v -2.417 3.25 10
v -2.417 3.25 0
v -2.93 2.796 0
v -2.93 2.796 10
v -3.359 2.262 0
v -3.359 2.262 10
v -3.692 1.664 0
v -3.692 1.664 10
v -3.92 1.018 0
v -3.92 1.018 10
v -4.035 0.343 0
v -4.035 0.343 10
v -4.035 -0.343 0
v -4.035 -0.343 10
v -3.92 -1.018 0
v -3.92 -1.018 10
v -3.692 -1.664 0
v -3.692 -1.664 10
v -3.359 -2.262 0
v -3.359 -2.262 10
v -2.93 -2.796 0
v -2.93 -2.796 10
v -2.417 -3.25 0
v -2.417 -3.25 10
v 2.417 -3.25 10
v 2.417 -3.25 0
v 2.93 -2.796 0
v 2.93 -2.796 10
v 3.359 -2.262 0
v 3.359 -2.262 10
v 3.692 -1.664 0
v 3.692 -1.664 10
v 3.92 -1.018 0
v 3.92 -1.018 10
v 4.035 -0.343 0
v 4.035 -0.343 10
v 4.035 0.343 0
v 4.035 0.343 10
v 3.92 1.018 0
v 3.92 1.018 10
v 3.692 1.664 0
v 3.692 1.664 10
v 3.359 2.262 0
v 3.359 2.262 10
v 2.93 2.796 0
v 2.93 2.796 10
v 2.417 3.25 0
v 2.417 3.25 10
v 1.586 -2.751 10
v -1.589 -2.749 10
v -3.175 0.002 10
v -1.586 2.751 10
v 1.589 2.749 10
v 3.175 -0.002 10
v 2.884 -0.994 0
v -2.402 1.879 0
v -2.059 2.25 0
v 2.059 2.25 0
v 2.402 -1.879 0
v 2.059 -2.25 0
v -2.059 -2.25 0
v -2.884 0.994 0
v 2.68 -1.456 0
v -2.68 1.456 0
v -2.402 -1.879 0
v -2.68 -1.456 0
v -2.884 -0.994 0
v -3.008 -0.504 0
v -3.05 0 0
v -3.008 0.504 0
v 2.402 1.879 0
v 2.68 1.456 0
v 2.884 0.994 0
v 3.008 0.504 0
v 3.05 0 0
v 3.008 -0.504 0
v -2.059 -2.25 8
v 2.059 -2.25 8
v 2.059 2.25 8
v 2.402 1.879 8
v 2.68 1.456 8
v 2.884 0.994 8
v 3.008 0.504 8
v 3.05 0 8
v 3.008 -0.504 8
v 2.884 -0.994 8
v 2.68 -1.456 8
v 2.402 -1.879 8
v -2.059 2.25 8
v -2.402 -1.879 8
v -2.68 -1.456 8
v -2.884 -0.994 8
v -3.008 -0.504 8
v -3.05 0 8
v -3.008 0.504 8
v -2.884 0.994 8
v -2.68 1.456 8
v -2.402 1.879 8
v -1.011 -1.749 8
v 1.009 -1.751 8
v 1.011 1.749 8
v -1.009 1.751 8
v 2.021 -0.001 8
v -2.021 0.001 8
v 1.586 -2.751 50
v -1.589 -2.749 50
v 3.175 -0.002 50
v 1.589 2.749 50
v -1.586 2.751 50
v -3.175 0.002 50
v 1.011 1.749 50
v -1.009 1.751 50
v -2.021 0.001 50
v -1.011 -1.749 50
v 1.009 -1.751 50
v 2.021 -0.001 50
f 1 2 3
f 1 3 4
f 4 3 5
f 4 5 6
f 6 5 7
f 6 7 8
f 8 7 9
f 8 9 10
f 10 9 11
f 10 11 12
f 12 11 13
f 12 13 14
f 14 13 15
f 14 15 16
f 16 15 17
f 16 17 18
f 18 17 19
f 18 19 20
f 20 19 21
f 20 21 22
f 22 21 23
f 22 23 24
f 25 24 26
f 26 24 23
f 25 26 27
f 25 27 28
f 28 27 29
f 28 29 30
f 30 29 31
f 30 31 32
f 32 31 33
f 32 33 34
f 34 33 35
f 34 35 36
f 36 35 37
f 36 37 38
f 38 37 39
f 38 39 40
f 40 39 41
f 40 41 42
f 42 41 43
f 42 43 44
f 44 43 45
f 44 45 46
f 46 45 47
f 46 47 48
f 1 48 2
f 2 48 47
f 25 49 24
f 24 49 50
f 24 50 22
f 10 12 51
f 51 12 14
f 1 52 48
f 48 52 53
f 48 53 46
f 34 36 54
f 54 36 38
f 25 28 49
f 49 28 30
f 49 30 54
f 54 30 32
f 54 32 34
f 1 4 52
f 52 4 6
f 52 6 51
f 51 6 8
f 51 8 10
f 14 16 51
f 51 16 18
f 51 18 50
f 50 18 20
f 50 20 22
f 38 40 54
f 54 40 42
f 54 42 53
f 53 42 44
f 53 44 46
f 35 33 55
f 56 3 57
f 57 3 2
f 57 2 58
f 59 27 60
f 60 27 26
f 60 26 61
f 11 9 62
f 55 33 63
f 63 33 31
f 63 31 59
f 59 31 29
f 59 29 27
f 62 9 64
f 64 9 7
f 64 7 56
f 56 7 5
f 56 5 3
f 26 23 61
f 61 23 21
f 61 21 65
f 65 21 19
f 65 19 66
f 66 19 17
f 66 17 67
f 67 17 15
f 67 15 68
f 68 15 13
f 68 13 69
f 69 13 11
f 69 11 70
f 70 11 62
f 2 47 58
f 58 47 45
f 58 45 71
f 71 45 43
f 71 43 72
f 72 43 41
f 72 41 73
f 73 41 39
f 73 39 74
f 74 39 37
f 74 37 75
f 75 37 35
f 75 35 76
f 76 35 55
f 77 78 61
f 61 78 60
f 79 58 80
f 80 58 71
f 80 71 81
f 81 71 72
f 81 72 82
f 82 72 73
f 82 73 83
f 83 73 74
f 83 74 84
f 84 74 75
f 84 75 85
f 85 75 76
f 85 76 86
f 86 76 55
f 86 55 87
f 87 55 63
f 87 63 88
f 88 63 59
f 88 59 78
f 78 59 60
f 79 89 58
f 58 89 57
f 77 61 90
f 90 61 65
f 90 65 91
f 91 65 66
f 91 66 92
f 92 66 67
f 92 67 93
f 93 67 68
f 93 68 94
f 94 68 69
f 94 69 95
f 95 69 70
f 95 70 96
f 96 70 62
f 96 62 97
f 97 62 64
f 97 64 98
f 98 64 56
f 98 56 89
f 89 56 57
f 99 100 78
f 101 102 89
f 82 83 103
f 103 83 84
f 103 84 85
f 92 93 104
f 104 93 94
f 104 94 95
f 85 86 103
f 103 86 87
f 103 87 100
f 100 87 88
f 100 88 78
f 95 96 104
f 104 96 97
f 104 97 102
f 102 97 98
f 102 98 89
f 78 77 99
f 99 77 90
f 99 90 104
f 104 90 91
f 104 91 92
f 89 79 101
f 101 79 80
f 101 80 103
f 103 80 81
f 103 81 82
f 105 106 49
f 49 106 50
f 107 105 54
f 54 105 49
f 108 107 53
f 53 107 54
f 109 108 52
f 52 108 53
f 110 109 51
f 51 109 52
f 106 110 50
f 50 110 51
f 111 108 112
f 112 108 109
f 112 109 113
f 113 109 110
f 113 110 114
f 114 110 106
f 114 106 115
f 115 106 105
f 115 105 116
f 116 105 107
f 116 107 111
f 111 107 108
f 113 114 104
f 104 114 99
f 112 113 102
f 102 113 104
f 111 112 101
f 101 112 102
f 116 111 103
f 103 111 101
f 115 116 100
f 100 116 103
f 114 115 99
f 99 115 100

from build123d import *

# Parameters (mm, degrees)
BOSS_EXTRUDE2_DEPTH     = 10
CUT_EXTRUDE2_DEPTH      = 8
BOSS_EXTRUDE3_DEPTH     = 40
CUT_EXTRUDE3_DEPTH      = 51.268926784
CUT_EXTRUDE3_DEPTH_BACK = 51.268926784


with BuildPart() as part:
    # Sketch1 → Boss-Extrude2 (new body)
    with BuildSketch(Plane.XY):
        with BuildLine():
            Line((-2.416609195, 3.25), (2.416609195, 3.25))
            ThreePointArc((2.416609195, 3.25), (4.05, 0), (2.416609195, -3.25))
            Line((2.416609195, -3.25), (-2.416609195, -3.25))
            ThreePointArc((-2.416609195, -3.25), (-4.05, 0), (-2.416609195, 3.25))
        make_face()
    extrude(amount=BOSS_EXTRUDE2_DEPTH)

    # Sketch3 → Cut-Extrude2 (cut)
    with BuildSketch(Plane(origin=(0, 0, 0), x_dir=(-1, 0, 0), z_dir=(0, 0, -1))):
        with BuildLine():
            Line((2.059126028, 2.25), (-2.059126028, 2.25))
            ThreePointArc((-2.059126028, 2.25), (-3.05, 0), (-2.059126028, -2.25))
            Line((-2.059126028, -2.25), (2.059126028, -2.25))
            ThreePointArc((2.059126028, -2.25), (3.05, 0), (2.059126028, 2.25))
        make_face()
    extrude(amount=-CUT_EXTRUDE2_DEPTH, mode=Mode.SUBTRACT)

    # Sketch4 → Boss-Extrude3 (add)
    with BuildSketch(Plane.XY.offset(10)):
        Polygon((1.586062627, -2.750952322), (3.175425909, -0.001905634), (1.589363281, 2.749046688), (-1.586062627, 2.750952322), (-3.175425909, 0.001905634), (-1.589363281, -2.749046688), align=None)
    extrude(amount=BOSS_EXTRUDE3_DEPTH)

    # Sketch5 → Cut-Extrude3 (cut, two sides: drawn at the far end of the back side and taken through both)
    with BuildSketch(Plane.XY.offset(50).offset(-CUT_EXTRUDE3_DEPTH_BACK)):
        Polygon((-1.011412997, -1.749393347), (1.009312581, -1.750606023), (2.020725578, -0.001212676), (1.011412997, 1.749393347), (-1.009312581, 1.750606023), (-2.020725578, 0.001212676), align=None)
    extrude(amount=CUT_EXTRUDE3_DEPTH + CUT_EXTRUDE3_DEPTH_BACK, mode=Mode.SUBTRACT)


solid = part.part
